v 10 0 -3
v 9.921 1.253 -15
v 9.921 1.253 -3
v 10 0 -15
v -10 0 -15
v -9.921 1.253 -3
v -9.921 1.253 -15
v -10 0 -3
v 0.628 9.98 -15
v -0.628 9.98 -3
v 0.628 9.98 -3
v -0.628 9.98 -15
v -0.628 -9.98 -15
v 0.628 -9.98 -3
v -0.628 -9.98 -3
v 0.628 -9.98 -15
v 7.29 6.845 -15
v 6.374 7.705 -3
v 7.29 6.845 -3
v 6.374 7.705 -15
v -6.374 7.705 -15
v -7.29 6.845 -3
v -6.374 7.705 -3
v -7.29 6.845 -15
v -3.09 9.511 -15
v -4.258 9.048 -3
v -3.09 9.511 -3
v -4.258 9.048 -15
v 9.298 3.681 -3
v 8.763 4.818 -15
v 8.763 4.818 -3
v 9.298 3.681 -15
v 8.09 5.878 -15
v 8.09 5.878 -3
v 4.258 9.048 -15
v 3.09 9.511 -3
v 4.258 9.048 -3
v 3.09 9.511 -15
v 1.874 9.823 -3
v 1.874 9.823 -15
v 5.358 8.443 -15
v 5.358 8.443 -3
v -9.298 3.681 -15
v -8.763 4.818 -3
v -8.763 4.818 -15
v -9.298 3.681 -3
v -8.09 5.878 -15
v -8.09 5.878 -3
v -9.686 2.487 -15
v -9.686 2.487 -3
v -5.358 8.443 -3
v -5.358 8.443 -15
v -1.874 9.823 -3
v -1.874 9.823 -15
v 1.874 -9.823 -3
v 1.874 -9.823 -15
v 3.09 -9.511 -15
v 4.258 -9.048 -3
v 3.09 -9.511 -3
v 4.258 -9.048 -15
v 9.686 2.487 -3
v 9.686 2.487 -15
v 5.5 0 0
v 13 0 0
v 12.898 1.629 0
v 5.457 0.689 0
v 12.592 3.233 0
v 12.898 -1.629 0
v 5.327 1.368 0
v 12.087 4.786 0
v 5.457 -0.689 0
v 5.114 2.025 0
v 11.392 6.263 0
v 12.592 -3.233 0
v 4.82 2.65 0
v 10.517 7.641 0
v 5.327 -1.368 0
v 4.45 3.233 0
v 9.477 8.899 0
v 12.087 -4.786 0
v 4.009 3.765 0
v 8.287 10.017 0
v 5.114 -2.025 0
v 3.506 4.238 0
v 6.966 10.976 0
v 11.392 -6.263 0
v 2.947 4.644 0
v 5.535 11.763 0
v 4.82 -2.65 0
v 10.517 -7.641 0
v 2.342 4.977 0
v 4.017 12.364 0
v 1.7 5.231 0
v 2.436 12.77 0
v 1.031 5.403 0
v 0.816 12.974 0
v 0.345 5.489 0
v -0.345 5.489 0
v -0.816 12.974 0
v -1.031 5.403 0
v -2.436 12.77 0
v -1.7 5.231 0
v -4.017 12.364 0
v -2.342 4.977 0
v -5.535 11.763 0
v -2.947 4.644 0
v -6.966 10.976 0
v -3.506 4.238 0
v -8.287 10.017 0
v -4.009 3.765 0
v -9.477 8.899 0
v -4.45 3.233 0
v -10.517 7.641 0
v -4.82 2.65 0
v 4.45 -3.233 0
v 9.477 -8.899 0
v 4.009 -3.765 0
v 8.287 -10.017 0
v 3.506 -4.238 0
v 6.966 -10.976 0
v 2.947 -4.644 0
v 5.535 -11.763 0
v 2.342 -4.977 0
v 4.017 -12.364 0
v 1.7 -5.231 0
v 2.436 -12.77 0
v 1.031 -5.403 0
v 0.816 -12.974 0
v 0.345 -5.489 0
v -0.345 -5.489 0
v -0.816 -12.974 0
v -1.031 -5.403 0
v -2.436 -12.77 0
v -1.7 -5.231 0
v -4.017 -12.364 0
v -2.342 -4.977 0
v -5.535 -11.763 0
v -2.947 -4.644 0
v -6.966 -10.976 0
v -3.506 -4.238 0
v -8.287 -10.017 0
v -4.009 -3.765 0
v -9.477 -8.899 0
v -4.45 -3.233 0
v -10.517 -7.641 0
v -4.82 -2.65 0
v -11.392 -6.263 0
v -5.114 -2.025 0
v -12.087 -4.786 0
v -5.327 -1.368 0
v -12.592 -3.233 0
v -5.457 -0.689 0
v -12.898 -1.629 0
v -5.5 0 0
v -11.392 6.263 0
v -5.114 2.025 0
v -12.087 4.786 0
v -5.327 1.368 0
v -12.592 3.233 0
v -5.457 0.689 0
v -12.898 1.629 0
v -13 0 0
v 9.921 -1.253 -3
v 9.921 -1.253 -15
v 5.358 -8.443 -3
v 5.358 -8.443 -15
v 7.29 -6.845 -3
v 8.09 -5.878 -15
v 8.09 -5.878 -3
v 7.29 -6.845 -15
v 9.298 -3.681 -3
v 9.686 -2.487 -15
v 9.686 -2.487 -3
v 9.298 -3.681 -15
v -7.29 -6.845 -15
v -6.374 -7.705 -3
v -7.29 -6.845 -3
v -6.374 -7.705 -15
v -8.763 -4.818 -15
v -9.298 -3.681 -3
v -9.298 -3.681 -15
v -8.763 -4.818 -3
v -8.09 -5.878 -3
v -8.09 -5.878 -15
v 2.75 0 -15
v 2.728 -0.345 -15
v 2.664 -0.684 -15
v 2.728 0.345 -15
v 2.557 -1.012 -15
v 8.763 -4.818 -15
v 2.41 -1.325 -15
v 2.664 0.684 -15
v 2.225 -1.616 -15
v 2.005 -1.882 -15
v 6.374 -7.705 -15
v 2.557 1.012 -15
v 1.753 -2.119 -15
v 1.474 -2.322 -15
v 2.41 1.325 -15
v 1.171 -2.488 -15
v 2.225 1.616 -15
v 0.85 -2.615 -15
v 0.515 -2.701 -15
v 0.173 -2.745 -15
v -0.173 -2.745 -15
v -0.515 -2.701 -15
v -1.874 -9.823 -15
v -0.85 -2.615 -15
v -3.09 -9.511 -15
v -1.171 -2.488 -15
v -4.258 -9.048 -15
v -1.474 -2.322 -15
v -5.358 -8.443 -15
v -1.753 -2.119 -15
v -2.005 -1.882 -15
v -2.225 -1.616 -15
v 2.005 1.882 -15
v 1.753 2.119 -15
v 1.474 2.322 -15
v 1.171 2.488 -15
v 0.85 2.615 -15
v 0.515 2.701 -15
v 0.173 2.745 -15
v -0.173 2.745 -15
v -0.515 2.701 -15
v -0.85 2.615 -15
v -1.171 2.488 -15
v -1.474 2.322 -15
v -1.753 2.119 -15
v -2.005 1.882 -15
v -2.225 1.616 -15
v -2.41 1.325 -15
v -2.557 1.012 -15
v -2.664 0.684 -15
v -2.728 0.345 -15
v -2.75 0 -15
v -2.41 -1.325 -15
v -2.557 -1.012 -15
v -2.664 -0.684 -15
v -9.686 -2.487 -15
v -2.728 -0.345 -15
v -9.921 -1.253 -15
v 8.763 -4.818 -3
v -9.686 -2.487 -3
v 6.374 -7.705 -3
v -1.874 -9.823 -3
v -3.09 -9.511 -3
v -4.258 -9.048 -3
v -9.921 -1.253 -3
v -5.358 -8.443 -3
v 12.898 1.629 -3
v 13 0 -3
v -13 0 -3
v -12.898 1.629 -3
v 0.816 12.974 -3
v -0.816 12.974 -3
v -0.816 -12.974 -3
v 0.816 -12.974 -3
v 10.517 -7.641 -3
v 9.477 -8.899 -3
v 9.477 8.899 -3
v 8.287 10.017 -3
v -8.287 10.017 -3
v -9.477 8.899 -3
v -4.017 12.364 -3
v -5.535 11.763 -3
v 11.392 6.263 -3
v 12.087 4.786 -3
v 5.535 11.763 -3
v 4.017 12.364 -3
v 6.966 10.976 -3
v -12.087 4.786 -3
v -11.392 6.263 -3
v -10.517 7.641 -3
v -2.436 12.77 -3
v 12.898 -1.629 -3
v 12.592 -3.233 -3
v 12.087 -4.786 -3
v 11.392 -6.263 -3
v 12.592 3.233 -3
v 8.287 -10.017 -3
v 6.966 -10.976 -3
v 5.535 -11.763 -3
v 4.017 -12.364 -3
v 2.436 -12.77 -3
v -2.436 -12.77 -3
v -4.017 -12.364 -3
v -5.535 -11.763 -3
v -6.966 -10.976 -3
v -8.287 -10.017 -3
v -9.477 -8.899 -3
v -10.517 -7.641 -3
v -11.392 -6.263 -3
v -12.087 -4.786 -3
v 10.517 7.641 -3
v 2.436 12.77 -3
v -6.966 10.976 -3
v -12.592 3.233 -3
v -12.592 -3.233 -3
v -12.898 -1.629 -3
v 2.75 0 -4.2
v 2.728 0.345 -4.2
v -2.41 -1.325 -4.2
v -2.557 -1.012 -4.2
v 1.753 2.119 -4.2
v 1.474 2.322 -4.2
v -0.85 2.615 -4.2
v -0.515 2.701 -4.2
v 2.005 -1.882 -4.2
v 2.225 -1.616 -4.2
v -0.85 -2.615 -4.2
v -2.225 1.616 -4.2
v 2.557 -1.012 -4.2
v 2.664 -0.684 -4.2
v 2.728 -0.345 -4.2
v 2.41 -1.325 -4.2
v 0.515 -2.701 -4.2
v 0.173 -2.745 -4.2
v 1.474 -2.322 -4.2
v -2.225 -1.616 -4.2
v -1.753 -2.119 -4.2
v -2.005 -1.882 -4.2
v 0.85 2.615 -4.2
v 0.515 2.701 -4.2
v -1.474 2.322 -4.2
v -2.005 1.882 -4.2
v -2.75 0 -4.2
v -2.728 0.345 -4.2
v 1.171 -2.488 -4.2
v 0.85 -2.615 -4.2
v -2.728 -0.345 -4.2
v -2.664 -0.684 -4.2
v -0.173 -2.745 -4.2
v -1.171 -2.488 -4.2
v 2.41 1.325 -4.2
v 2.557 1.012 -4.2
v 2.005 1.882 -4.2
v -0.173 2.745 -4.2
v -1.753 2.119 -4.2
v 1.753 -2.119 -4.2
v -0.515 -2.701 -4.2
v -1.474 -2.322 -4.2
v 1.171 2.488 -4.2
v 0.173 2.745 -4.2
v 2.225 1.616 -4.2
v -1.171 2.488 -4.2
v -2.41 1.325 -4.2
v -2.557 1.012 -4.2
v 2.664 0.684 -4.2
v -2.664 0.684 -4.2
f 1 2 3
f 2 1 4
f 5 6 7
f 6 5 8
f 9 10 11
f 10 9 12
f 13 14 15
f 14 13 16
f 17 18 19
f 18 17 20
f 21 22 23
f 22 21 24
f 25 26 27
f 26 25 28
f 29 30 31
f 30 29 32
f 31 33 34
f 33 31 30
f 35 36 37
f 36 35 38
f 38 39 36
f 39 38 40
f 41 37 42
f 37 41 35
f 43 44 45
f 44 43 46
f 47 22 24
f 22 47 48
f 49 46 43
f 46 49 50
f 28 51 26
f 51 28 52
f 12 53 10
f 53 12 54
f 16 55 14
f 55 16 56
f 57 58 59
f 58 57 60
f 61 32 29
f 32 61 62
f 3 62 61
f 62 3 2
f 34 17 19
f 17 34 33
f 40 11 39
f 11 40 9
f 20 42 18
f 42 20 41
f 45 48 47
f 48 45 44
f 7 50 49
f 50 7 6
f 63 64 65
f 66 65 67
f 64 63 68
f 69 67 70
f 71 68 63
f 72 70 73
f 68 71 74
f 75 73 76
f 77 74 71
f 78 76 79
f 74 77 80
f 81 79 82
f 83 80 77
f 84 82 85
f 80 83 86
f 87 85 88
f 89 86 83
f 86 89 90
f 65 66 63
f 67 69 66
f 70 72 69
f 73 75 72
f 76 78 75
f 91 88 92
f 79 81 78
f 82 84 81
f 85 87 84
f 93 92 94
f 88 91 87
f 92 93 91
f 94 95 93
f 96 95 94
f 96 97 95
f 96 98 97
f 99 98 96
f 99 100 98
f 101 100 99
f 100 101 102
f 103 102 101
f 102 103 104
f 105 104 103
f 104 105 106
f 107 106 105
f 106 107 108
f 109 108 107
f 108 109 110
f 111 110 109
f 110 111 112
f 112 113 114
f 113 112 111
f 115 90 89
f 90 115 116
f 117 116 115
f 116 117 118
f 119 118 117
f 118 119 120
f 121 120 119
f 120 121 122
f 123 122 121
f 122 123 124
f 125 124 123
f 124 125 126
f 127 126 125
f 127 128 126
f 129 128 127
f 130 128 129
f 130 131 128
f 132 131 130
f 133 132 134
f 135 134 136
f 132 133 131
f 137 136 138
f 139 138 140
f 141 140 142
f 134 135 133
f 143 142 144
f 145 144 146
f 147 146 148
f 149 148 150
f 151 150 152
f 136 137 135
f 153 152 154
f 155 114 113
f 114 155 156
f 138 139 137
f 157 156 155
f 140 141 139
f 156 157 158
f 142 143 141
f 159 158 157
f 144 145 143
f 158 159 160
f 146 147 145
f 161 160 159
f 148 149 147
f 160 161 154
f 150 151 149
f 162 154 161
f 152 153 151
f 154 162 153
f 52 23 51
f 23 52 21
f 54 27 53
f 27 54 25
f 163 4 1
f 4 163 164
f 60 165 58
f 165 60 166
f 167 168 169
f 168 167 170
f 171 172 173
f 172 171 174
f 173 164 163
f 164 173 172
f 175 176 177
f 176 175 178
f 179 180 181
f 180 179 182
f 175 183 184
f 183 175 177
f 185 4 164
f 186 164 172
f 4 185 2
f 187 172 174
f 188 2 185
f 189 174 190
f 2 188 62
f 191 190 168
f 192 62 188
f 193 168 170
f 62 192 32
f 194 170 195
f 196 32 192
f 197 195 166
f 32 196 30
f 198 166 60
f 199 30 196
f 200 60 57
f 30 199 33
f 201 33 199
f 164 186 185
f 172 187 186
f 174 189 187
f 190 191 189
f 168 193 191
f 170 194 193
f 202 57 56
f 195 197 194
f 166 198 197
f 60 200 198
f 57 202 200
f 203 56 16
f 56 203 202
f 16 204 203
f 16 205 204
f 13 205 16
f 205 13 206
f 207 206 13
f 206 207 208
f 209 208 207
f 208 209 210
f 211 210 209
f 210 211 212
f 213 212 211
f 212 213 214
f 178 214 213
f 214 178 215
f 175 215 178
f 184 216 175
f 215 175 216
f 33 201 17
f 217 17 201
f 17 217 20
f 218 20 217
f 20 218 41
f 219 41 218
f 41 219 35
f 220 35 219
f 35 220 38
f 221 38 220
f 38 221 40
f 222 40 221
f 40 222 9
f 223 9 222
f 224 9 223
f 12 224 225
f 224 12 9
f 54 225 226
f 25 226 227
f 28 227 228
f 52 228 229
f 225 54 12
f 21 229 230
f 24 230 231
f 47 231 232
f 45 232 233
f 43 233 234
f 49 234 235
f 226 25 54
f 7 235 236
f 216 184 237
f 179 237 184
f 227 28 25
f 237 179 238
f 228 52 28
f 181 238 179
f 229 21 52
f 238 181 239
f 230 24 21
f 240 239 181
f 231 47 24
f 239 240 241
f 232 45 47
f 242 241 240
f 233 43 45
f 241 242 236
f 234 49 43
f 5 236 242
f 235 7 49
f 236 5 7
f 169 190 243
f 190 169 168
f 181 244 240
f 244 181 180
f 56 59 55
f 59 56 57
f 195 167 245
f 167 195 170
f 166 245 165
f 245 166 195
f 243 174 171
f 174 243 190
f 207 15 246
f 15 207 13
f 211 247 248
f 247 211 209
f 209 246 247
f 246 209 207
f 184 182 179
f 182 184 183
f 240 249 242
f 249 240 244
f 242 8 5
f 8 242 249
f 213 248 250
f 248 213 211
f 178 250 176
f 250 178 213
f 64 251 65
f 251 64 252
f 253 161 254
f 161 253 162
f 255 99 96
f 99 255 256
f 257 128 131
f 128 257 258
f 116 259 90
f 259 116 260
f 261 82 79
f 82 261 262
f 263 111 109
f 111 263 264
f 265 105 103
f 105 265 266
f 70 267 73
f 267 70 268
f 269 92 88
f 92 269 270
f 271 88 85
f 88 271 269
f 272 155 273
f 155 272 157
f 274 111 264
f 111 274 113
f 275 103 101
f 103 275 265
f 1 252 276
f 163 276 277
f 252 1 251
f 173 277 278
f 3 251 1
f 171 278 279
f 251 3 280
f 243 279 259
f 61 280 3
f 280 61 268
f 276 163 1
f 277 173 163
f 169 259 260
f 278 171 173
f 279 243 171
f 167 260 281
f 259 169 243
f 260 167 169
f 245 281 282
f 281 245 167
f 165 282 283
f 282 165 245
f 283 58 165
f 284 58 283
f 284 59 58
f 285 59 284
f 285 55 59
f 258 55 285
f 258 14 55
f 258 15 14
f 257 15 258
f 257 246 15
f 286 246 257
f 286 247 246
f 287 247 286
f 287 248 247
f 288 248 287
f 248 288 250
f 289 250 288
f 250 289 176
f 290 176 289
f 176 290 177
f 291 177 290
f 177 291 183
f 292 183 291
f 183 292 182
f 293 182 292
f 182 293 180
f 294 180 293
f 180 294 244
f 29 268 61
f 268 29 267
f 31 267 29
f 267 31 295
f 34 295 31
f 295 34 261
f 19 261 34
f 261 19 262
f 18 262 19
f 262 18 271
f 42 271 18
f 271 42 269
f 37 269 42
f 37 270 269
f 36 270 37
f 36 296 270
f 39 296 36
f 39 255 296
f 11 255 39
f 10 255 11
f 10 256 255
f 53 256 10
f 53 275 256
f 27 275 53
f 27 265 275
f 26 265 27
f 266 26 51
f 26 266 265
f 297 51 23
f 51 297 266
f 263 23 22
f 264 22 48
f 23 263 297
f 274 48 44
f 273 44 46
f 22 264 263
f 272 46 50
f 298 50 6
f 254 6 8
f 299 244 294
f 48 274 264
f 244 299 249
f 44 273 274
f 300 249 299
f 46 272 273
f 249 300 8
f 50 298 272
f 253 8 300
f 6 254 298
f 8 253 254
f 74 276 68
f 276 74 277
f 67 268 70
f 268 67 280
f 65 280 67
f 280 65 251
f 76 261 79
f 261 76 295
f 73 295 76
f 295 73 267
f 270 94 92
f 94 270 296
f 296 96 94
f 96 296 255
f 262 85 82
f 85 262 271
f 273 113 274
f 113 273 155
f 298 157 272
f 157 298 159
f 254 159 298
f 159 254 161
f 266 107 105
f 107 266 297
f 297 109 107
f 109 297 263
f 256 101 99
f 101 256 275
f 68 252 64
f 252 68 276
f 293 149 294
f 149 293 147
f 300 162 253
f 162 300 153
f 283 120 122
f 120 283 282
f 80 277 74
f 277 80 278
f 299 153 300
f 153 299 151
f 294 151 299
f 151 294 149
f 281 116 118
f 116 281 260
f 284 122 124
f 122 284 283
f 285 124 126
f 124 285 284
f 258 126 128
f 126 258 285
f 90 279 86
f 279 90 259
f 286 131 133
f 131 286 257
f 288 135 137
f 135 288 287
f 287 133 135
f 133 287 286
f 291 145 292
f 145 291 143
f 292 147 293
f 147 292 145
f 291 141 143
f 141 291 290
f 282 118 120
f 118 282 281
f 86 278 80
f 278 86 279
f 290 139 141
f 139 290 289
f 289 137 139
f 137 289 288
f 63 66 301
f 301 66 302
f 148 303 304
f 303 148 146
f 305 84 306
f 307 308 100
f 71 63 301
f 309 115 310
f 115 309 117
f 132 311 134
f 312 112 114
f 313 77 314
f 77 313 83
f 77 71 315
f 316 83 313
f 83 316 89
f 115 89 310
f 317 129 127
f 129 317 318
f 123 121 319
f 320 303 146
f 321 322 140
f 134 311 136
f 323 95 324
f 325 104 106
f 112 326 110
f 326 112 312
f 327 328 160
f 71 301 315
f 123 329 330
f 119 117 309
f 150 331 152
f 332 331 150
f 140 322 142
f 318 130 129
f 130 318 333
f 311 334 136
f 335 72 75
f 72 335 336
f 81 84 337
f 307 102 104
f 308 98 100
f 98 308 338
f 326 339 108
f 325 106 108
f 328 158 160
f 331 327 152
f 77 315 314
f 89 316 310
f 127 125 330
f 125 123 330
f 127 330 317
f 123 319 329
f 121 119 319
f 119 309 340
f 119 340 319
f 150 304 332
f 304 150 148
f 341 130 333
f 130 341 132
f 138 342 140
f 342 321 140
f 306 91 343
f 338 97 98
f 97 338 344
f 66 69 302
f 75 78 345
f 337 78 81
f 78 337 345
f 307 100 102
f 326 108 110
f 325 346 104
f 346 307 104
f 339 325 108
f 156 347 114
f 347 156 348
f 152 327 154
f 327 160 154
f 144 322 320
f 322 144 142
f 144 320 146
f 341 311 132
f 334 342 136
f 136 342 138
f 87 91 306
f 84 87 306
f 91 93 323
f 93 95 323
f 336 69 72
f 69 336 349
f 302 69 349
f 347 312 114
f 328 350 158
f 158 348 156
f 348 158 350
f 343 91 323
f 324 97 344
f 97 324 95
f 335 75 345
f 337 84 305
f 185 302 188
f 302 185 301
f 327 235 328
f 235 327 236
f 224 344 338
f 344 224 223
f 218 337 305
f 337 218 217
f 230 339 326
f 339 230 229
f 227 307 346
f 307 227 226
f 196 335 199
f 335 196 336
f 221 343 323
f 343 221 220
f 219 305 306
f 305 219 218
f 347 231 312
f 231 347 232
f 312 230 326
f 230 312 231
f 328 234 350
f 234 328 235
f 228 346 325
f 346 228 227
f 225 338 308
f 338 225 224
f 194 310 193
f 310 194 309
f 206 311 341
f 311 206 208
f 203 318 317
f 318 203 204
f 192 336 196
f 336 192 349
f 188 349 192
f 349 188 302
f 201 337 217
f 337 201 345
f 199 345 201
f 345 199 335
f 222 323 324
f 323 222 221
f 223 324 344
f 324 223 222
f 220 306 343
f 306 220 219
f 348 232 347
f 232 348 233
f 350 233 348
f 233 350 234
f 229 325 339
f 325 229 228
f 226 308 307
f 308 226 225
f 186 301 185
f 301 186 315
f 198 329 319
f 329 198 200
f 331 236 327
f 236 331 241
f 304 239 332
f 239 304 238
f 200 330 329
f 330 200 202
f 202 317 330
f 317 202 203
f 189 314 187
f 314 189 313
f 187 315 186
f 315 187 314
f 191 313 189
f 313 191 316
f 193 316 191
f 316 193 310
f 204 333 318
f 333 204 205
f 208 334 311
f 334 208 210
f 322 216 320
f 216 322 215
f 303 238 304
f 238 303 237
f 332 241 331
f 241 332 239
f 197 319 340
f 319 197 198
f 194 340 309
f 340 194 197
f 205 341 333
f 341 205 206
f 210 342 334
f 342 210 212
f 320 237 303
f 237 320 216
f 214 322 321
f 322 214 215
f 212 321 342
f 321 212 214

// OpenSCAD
$fn = 50;


difference() {
	union() {
		translate(v = [0, 0, -15.0000000000]) {
			cylinder(h = 15, r = 10.0000000000);
		}
		translate(v = [0, 0, -3.0000000000]) {
			cylinder(h = 3, r = 13.0000000000);
		}
	}
	union() {
		translate(v = [0, 0, 0]) {
			rotate(a = [0, 0, 0]) {
				difference() {
					union() {
						#translate(v = [0, 0, -15.0000000000]) {
							cylinder(h = 15, r = 2.2500000000);
						}
						#translate(v = [0, 0, -4.2000000000]) {
							cylinder(h = 4.2000000000, r1 = 2.7500000000, r2 = 5.5000000000);
						}
						#translate(v = [0, 0, -15.0000000000]) {
							cylinder(h = 15, r = 2.7500000000);
						}
						#translate(v = [0, 0, -15.0000000000]) {
							cylinder(h = 15, r = 2.2500000000);
						}
					}
					union();
				}
			}
		}
	}
}
